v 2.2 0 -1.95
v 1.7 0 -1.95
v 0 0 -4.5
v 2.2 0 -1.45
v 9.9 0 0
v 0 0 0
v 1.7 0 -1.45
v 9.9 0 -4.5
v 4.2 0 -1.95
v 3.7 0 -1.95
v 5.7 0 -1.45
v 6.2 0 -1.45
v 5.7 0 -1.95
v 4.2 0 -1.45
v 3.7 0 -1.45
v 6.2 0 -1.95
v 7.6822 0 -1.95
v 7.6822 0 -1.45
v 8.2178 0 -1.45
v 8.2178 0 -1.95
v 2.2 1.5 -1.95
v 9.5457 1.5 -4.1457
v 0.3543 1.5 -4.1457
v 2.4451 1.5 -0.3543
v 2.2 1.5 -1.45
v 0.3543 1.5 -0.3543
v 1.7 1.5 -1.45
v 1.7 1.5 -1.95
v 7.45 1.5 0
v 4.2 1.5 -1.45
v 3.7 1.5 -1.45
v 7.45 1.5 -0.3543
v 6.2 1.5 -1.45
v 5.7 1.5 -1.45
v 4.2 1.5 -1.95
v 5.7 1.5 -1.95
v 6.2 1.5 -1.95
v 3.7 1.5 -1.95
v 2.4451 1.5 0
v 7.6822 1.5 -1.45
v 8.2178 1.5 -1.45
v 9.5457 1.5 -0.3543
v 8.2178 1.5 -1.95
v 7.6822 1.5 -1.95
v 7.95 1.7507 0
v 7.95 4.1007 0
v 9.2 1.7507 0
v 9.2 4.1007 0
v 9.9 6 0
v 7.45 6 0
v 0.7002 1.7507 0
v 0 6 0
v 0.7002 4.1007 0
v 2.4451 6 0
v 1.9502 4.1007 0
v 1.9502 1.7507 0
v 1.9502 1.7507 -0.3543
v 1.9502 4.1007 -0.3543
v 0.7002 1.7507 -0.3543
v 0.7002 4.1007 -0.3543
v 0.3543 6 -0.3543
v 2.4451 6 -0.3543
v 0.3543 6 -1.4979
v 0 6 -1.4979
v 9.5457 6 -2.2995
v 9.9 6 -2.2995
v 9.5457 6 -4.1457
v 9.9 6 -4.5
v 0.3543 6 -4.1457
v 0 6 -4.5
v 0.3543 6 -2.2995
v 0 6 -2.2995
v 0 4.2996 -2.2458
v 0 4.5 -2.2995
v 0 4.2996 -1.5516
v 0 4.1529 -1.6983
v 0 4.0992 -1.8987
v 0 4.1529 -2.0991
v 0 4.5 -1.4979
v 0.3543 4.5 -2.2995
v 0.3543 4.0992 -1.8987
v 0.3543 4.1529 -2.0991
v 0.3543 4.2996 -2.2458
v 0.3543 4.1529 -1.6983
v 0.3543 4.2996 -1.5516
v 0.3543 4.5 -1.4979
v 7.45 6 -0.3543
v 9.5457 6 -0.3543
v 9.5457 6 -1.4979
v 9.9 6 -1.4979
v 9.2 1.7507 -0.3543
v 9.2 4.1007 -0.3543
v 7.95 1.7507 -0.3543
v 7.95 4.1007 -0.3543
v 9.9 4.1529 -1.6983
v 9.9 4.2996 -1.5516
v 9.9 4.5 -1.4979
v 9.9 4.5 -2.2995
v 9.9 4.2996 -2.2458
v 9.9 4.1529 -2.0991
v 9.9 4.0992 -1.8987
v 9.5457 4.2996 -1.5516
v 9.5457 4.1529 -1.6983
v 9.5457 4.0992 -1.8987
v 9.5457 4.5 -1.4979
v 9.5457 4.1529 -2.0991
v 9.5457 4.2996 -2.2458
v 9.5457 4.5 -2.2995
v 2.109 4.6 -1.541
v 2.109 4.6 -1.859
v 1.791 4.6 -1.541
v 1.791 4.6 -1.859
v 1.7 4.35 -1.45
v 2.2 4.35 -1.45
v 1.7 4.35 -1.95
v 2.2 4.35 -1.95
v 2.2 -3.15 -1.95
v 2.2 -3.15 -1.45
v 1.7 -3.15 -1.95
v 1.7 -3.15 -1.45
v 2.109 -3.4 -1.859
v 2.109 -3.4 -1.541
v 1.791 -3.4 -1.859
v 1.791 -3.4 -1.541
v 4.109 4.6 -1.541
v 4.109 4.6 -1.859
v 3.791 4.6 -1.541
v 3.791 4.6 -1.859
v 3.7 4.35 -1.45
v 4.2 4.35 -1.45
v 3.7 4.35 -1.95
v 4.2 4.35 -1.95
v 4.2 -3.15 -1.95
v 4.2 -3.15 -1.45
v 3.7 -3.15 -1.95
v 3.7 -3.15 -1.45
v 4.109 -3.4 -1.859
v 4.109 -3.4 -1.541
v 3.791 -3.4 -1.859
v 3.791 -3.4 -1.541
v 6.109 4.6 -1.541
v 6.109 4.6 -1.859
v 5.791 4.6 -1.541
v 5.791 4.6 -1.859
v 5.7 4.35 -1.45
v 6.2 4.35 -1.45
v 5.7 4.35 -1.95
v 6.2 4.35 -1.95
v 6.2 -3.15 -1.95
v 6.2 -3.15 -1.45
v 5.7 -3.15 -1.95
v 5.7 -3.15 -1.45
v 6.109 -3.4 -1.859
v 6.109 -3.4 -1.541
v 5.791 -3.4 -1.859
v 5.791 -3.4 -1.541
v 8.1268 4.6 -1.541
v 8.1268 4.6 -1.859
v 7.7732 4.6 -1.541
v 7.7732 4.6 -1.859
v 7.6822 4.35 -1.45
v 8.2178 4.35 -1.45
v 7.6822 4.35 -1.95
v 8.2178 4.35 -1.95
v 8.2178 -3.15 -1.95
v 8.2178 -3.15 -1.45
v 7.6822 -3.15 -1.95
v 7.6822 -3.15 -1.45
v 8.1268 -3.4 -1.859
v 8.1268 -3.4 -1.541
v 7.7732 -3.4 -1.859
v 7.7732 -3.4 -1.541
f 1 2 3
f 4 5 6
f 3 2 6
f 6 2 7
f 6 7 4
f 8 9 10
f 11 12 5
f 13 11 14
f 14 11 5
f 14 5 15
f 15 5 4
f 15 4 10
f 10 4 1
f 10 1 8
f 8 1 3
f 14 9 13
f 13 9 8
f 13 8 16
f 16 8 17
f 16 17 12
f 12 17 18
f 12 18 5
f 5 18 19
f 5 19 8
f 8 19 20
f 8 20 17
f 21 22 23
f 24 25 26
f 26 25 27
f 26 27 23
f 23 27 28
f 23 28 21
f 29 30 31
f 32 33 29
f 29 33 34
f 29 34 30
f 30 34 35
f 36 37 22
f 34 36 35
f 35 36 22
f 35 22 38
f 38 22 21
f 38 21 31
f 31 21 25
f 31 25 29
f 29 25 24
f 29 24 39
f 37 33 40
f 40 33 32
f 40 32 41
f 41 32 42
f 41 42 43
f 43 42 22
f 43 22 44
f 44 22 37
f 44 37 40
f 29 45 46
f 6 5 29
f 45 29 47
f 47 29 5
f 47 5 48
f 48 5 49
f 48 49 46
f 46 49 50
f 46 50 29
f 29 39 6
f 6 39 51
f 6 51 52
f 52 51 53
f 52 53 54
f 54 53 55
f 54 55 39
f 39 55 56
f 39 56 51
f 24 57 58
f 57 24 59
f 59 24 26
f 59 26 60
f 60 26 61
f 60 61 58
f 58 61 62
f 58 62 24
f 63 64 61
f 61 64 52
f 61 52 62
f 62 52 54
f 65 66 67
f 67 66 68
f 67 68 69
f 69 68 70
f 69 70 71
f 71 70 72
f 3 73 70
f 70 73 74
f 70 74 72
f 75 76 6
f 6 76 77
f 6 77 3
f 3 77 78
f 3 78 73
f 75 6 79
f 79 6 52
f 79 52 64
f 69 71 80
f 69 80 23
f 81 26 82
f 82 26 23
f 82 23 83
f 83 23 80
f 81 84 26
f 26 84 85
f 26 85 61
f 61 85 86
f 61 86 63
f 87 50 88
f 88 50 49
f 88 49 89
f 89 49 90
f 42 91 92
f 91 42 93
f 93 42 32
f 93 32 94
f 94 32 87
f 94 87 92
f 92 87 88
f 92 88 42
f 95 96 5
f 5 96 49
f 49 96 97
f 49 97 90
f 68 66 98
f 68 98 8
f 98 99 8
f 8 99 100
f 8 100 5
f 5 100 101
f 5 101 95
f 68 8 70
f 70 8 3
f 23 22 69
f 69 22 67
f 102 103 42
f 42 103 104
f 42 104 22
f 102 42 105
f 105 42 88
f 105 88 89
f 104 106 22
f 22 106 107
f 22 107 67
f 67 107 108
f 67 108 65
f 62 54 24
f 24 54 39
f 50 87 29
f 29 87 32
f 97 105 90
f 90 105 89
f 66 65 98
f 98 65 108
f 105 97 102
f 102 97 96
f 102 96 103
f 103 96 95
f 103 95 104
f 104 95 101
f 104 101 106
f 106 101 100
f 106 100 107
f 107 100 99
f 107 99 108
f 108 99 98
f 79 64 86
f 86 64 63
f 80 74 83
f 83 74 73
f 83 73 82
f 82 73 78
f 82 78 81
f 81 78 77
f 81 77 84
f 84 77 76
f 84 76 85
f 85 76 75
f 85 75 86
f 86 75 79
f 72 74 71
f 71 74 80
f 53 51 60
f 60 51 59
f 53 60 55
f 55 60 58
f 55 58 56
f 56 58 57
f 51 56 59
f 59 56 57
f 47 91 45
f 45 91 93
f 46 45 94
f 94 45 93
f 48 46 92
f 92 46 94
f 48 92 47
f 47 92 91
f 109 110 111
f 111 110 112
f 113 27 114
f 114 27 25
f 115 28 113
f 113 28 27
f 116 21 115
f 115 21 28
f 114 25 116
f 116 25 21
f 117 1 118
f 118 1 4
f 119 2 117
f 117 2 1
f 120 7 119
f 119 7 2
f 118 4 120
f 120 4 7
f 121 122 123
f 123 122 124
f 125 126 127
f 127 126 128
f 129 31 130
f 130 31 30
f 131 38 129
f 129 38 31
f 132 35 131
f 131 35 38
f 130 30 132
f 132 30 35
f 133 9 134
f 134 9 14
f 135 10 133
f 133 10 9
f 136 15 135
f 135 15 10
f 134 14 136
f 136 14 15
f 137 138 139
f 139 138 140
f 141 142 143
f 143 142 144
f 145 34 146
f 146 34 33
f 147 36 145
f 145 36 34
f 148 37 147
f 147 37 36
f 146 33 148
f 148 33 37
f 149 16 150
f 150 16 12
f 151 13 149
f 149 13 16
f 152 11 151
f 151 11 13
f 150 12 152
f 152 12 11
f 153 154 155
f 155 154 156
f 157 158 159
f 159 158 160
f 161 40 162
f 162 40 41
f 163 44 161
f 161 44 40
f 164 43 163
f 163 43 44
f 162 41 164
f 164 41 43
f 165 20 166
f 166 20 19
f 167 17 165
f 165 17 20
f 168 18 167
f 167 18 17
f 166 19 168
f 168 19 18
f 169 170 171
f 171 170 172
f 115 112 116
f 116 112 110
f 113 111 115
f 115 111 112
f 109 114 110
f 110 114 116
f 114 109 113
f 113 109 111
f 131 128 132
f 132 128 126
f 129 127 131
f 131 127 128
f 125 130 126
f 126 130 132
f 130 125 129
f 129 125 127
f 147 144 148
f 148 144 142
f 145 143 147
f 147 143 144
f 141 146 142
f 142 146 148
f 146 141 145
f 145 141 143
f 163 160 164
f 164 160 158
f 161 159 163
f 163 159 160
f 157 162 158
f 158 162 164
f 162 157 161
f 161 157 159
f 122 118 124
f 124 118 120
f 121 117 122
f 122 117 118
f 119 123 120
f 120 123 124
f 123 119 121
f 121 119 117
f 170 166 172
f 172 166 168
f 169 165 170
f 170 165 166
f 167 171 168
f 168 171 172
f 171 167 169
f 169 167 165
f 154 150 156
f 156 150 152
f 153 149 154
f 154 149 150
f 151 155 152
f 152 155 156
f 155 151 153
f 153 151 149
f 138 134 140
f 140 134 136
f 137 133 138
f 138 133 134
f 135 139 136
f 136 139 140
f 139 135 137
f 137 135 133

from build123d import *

# Parameters (mm, degrees)
SKETCH1_W              = 9.9
SKETCH1_H              = 6
BOSS_EXTRUDE1_DEPTH    = 4.5
SKETCH2_W              = 9.191478786
SKETCH2_H              = 3.791478786
CUT_EXTRUDE1_DEPTH     = 4.5
SKETCH3_W              = 5.004949596
SKETCH3_H              = 0.354260607
CUT_EXTRUDE2_DEPTH     = 4.5
CUT_EXTRUDE3_DEPTH     = 0.5
SKETCH6_W              = 1.25
SKETCH6_H              = 2.35
CUT_EXTRUDE4_DEPTH     = 0.5
BOSS_EXTRUDE3_START    = -3.4
SKETCH10_W             = 0.5
SKETCH10_H             = 0.5
SKETCH10_W_2           = 0.535638506
BOSS_EXTRUDE3_DEPTH    = 8
CHAMFER1_SIZE          = 0.25
CHAMFER1_SIZE2         = 0.090992559
CHAMFER1_PART_2_SIZE   = 0.25
CHAMFER1_PART_2_SIZE2  = 0.090992559
CHAMFER1_PART_3_SIZE   = 0.25
CHAMFER1_PART_3_SIZE2  = 0.090992559
CHAMFER1_PART_4_SIZE   = 0.25
CHAMFER1_PART_4_SIZE2  = 0.090992559
CHAMFER2_SIZE          = 0.25
CHAMFER2_SIZE2         = 0.090992559
CHAMFER2_PART_2_SIZE   = 0.25
CHAMFER2_PART_2_SIZE2  = 0.090992559
CHAMFER2_PART_3_SIZE   = 0.25
CHAMFER2_PART_3_SIZE2  = 0.090992559
CHAMFER2_PART_4_SIZE   = 0.25
CHAMFER2_PART_4_SIZE2  = 0.090992559
CHAMFER2_PART_5_SIZE   = 0.25
CHAMFER2_PART_5_SIZE2  = 0.090992559
CHAMFER2_PART_6_SIZE   = 0.25
CHAMFER2_PART_6_SIZE2  = 0.090992559
CHAMFER2_PART_7_SIZE   = 0.25
CHAMFER2_PART_7_SIZE2  = 0.090992559
CHAMFER2_PART_8_SIZE   = 0.25
CHAMFER2_PART_8_SIZE2  = 0.090992559
CHAMFER2_PART_9_SIZE   = 0.25
CHAMFER2_PART_9_SIZE2  = 0.090992559
CHAMFER2_PART_10_SIZE  = 0.25
CHAMFER2_PART_10_SIZE2 = 0.090992559
CHAMFER2_PART_11_SIZE  = 0.25
CHAMFER2_PART_11_SIZE2 = 0.090992559
CHAMFER2_PART_12_SIZE  = 0.25
CHAMFER2_PART_12_SIZE2 = 0.090992559
CHAMFER3_SIZE          = 0.25
CHAMFER3_SIZE2         = 0.090992559
CHAMFER3_PART_2_SIZE   = 0.25
CHAMFER3_PART_2_SIZE2  = 0.090992559
CHAMFER3_PART_3_SIZE   = 0.25
CHAMFER3_PART_3_SIZE2  = 0.090992559
CHAMFER3_PART_4_SIZE   = 0.25
CHAMFER3_PART_4_SIZE2  = 0.090992559
CHAMFER3_PART_5_SIZE   = 0.25
CHAMFER3_PART_5_SIZE2  = 0.090992559
CHAMFER3_PART_6_SIZE   = 0.25
CHAMFER3_PART_6_SIZE2  = 0.090992559
CHAMFER3_PART_7_SIZE   = 0.25
CHAMFER3_PART_7_SIZE2  = 0.090992559
CHAMFER3_PART_8_SIZE   = 0.25
CHAMFER3_PART_8_SIZE2  = 0.090992559
CHAMFER3_PART_9_SIZE   = 0.25
CHAMFER3_PART_9_SIZE2  = 0.090992559
CHAMFER3_PART_10_SIZE  = 0.25
CHAMFER3_PART_10_SIZE2 = 0.090992559
CHAMFER3_PART_11_SIZE  = 0.25
CHAMFER3_PART_11_SIZE2 = 0.090992559
CHAMFER3_PART_12_SIZE  = 0.25
CHAMFER3_PART_12_SIZE2 = 0.090992559
CHAMFER3_PART_13_SIZE  = 0.25
CHAMFER3_PART_13_SIZE2 = 0.090992559
CHAMFER3_PART_14_SIZE  = 0.25
CHAMFER3_PART_14_SIZE2 = 0.090992559
CHAMFER3_PART_15_SIZE  = 0.25
CHAMFER3_PART_15_SIZE2 = 0.090992559
CHAMFER3_PART_16_SIZE  = 0.25
CHAMFER3_PART_16_SIZE2 = 0.090992559


with BuildPart() as part:
    # Sketch1 → Boss-Extrude1 (new body)
    with BuildSketch(Plane.XY):
        with Locations((4.95, 3)):
            Rectangle(SKETCH1_W, SKETCH1_H)
    extrude(amount=-BOSS_EXTRUDE1_DEPTH)

    # Sketch2 → Cut-Extrude1 (cut)
    with BuildSketch(Plane(origin=(0, 6, 0), x_dir=(1, 0, 0), z_dir=(0, 1, 0))):
        with Locations((4.95, 2.25)):
            Rectangle(SKETCH2_W, SKETCH2_H)
    extrude(amount=-CUT_EXTRUDE1_DEPTH, mode=Mode.SUBTRACT)

    # Sketch3 → Cut-Extrude2 (cut)
    with BuildSketch(Plane(origin=(0, 1.5, 0), x_dir=(1, 0, 0), z_dir=(0, 1, 0))):
        with Locations((4.947525202, 0.177130304)):
            Rectangle(SKETCH3_W, SKETCH3_H)
    extrude(amount=CUT_EXTRUDE2_DEPTH, mode=Mode.SUBTRACT)

    # Sketch5 → Cut-Extrude3 (cut)
    with BuildSketch(Plane(origin=(9.9, 0, 0), x_dir=(0, 0, -1), z_dir=(1, 0, 0))):
        with BuildLine():
            Line((2.299478677, 6), (1.497924103, 6))
            Line((1.497924103, 6), (1.497924103, 4.5))
            ThreePointArc((1.497924103, 4.5), (1.89870139, 4.900777287), (2.299478677, 4.5))
            Line((2.299478677, 4.5), (2.299478677, 6))
        make_face()
        with BuildLine():
            ThreePointArc((2.299478677, 4.5), (1.89870139, 4.900777287), (1.497924103, 4.5))
            Line((1.497924103, 4.5), (2.299478677, 4.5))
        make_face()
        with BuildLine():
            Line((2.299478677, 4.5), (1.497924103, 4.5))
            ThreePointArc((1.497924103, 4.5), (1.89870139, 4.099222713), (2.299478677, 4.5))
        make_face()
    cut_extrude3 = extrude(amount=-CUT_EXTRUDE3_DEPTH, mode=Mode.SUBTRACT)

    # Mirror1: Cut-Extrude3 across plane
    add(cut_extrude3.mirror(Plane(origin=(4.95, 0, 0), x_dir=(0, 0, 1), z_dir=(1, 0, 0))), mode=Mode.SUBTRACT)

    # Sketch6 → Cut-Extrude4 (cut)
    with BuildSketch(Plane.XY):
        with Locations((1.325196701, 2.925654718)):
            Rectangle(SKETCH6_W, SKETCH6_H)
        with Locations((8.575, 2.925654718)):
            Rectangle(SKETCH6_W, SKETCH6_H)
    extrude(amount=-CUT_EXTRUDE4_DEPTH, mode=Mode.SUBTRACT)

    # Sketch10 → Boss-Extrude3 (add)
    with BuildSketch(Plane(origin=(0, 0, 0), x_dir=(1, 0, 0), z_dir=(0, 1, 0)).offset(BOSS_EXTRUDE3_START)):
        with Locations((1.95, 1.7)):
            Rectangle(SKETCH10_W, SKETCH10_H)
        with Locations((3.95, 1.7)):
            Rectangle(SKETCH10_W, SKETCH10_H)
        with Locations((5.95, 1.7)):
            Rectangle(SKETCH10_W, SKETCH10_H)
        with Locations((7.95, 1.7)):
            Rectangle(SKETCH10_W_2, SKETCH10_H)
    extrude(amount=BOSS_EXTRUDE3_DEPTH)

    # Chamfer1
    chamfer1_edges = [part.edges().sort_by_distance(p)[0] for p in [
        (2.2, 4.6, -1.7),
    ]]
    chamfer1_side = [part.faces().sort_by_distance(p)[0] for p in [
        (2.2, 3.05, -1.7),
    ]]
    chamfer(chamfer1_edges, length=CHAMFER1_SIZE, length2=CHAMFER1_SIZE2, reference=chamfer1_side[0])

    # Chamfer1 part 2
    chamfer1_part_2_edges = [part.edges().sort_by_distance(p)[0] for p in [
        (1.95, 4.6, -1.95),
    ]]
    chamfer1_part_2_side = [part.faces().sort_by_distance(p)[0] for p in [
        (1.95, 3.05, -1.95),
    ]]
    chamfer(chamfer1_part_2_edges, length=CHAMFER1_PART_2_SIZE, length2=CHAMFER1_PART_2_SIZE2, reference=chamfer1_part_2_side[0])

    # Chamfer1 part 3
    chamfer1_part_3_edges = [part.edges().sort_by_distance(p)[0] for p in [
        (1.7, 4.6, -1.7),
    ]]
    chamfer1_part_3_side = [part.faces().sort_by_distance(p)[0] for p in [
        (1.7, 3.05, -1.7),
    ]]
    chamfer(chamfer1_part_3_edges, length=CHAMFER1_PART_3_SIZE, length2=CHAMFER1_PART_3_SIZE2, reference=chamfer1_part_3_side[0])

    # Chamfer1 part 4
    chamfer1_part_4_edges = [part.edges().sort_by_distance(p)[0] for p in [
        (1.95, 4.6, -1.45),
    ]]
    chamfer1_part_4_side = [part.faces().sort_by_distance(p)[0] for p in [
        (1.95, 3.05, -1.45),
    ]]
    chamfer(chamfer1_part_4_edges, length=CHAMFER1_PART_4_SIZE, length2=CHAMFER1_PART_4_SIZE2, reference=chamfer1_part_4_side[0])

    # Chamfer2
    chamfer2_edges = [part.edges().sort_by_distance(p)[0] for p in [
        (4.2, 4.6, -1.7),
    ]]
    chamfer2_side = [part.faces().sort_by_distance(p)[0] for p in [
        (4.2, 3.05, -1.7),
    ]]
    chamfer(chamfer2_edges, length=CHAMFER2_SIZE, length2=CHAMFER2_SIZE2, reference=chamfer2_side[0])

    # Chamfer2 part 2
    chamfer2_part_2_edges = [part.edges().sort_by_distance(p)[0] for p in [
        (3.95, 4.6, -1.95),
    ]]
    chamfer2_part_2_side = [part.faces().sort_by_distance(p)[0] for p in [
        (3.95, 3.05, -1.95),
    ]]
    chamfer(chamfer2_part_2_edges, length=CHAMFER2_PART_2_SIZE, length2=CHAMFER2_PART_2_SIZE2, reference=chamfer2_part_2_side[0])

    # Chamfer2 part 3
    chamfer2_part_3_edges = [part.edges().sort_by_distance(p)[0] for p in [
        (3.7, 4.6, -1.7),
    ]]
    chamfer2_part_3_side = [part.faces().sort_by_distance(p)[0] for p in [
        (3.7, 3.05, -1.7),
    ]]
    chamfer(chamfer2_part_3_edges, length=CHAMFER2_PART_3_SIZE, length2=CHAMFER2_PART_3_SIZE2, reference=chamfer2_part_3_side[0])

    # Chamfer2 part 4
    chamfer2_part_4_edges = [part.edges().sort_by_distance(p)[0] for p in [
        (3.95, 4.6, -1.45),
    ]]
    chamfer2_part_4_side = [part.faces().sort_by_distance(p)[0] for p in [
        (3.95, 3.05, -1.45),
    ]]
    chamfer(chamfer2_part_4_edges, length=CHAMFER2_PART_4_SIZE, length2=CHAMFER2_PART_4_SIZE2, reference=chamfer2_part_4_side[0])

    # Chamfer2 part 5
    chamfer2_part_5_edges = [part.edges().sort_by_distance(p)[0] for p in [
        (6.2, 4.6, -1.7),
    ]]
    chamfer2_part_5_side = [part.faces().sort_by_distance(p)[0] for p in [
        (6.2, 3.05, -1.7),
    ]]
    chamfer(chamfer2_part_5_edges, length=CHAMFER2_PART_5_SIZE, length2=CHAMFER2_PART_5_SIZE2, reference=chamfer2_part_5_side[0])

    # Chamfer2 part 6
    chamfer2_part_6_edges = [part.edges().sort_by_distance(p)[0] for p in [
        (5.95, 4.6, -1.95),
    ]]
    chamfer2_part_6_side = [part.faces().sort_by_distance(p)[0] for p in [
        (5.95, 3.05, -1.95),
    ]]
    chamfer(chamfer2_part_6_edges, length=CHAMFER2_PART_6_SIZE, length2=CHAMFER2_PART_6_SIZE2, reference=chamfer2_part_6_side[0])

    # Chamfer2 part 7
    chamfer2_part_7_edges = [part.edges().sort_by_distance(p)[0] for p in [
        (5.7, 4.6, -1.7),
    ]]
    chamfer2_part_7_side = [part.faces().sort_by_distance(p)[0] for p in [
        (5.7, 3.05, -1.7),
    ]]
    chamfer(chamfer2_part_7_edges, length=CHAMFER2_PART_7_SIZE, length2=CHAMFER2_PART_7_SIZE2, reference=chamfer2_part_7_side[0])

    # Chamfer2 part 8
    chamfer2_part_8_edges = [part.edges().sort_by_distance(p)[0] for p in [
        (5.95, 4.6, -1.45),
    ]]
    chamfer2_part_8_side = [part.faces().sort_by_distance(p)[0] for p in [
        (5.95, 3.05, -1.45),
    ]]
    chamfer(chamfer2_part_8_edges, length=CHAMFER2_PART_8_SIZE, length2=CHAMFER2_PART_8_SIZE2, reference=chamfer2_part_8_side[0])

    # Chamfer2 part 9
    chamfer2_part_9_edges = [part.edges().sort_by_distance(p)[0] for p in [
        (8.217819253, 4.6, -1.7),
    ]]
    chamfer2_part_9_side = [part.faces().sort_by_distance(p)[0] for p in [
        (8.217819253, 3.05, -1.7),
    ]]
    chamfer(chamfer2_part_9_edges, length=CHAMFER2_PART_9_SIZE, length2=CHAMFER2_PART_9_SIZE2, reference=chamfer2_part_9_side[0])

    # Chamfer2 part 10
    chamfer2_part_10_edges = [part.edges().sort_by_distance(p)[0] for p in [
        (7.95, 4.6, -1.95),
    ]]
    chamfer2_part_10_side = [part.faces().sort_by_distance(p)[0] for p in [
        (7.95, 3.05, -1.95),
    ]]
    chamfer(chamfer2_part_10_edges, length=CHAMFER2_PART_10_SIZE, length2=CHAMFER2_PART_10_SIZE2, reference=chamfer2_part_10_side[0])

    # Chamfer2 part 11
    chamfer2_part_11_edges = [part.edges().sort_by_distance(p)[0] for p in [
        (7.682180747, 4.6, -1.7),
    ]]
    chamfer2_part_11_side = [part.faces().sort_by_distance(p)[0] for p in [
        (7.682180747, 3.05, -1.7),
    ]]
    chamfer(chamfer2_part_11_edges, length=CHAMFER2_PART_11_SIZE, length2=CHAMFER2_PART_11_SIZE2, reference=chamfer2_part_11_side[0])

    # Chamfer2 part 12
    chamfer2_part_12_edges = [part.edges().sort_by_distance(p)[0] for p in [
        (7.95, 4.6, -1.45),
    ]]
    chamfer2_part_12_side = [part.faces().sort_by_distance(p)[0] for p in [
        (7.95, 3.05, -1.45),
    ]]
    chamfer(chamfer2_part_12_edges, length=CHAMFER2_PART_12_SIZE, length2=CHAMFER2_PART_12_SIZE2, reference=chamfer2_part_12_side[0])

    # Chamfer3
    chamfer3_edges = [part.edges().sort_by_distance(p)[0] for p in [
        (2.2, -3.4, -1.7),
    ]]
    chamfer3_side = [part.faces().sort_by_distance(p)[0] for p in [
        (2.2, -1.7, -1.7),
    ]]
    chamfer(chamfer3_edges, length=CHAMFER3_SIZE, length2=CHAMFER3_SIZE2, reference=chamfer3_side[0])

    # Chamfer3 part 2
    chamfer3_part_2_edges = [part.edges().sort_by_distance(p)[0] for p in [
        (1.95, -3.4, -1.95),
    ]]
    chamfer3_part_2_side = [part.faces().sort_by_distance(p)[0] for p in [
        (1.95, -1.7, -1.95),
    ]]
    chamfer(chamfer3_part_2_edges, length=CHAMFER3_PART_2_SIZE, length2=CHAMFER3_PART_2_SIZE2, reference=chamfer3_part_2_side[0])

    # Chamfer3 part 3
    chamfer3_part_3_edges = [part.edges().sort_by_distance(p)[0] for p in [
        (1.7, -3.4, -1.7),
    ]]
    chamfer3_part_3_side = [part.faces().sort_by_distance(p)[0] for p in [
        (1.7, -1.7, -1.7),
    ]]
    chamfer(chamfer3_part_3_edges, length=CHAMFER3_PART_3_SIZE, length2=CHAMFER3_PART_3_SIZE2, reference=chamfer3_part_3_side[0])

    # Chamfer3 part 4
    chamfer3_part_4_edges = [part.edges().sort_by_distance(p)[0] for p in [
        (1.95, -3.4, -1.45),
    ]]
    chamfer3_part_4_side = [part.faces().sort_by_distance(p)[0] for p in [
        (1.95, -1.7, -1.45),
    ]]
    chamfer(chamfer3_part_4_edges, length=CHAMFER3_PART_4_SIZE, length2=CHAMFER3_PART_4_SIZE2, reference=chamfer3_part_4_side[0])

    # Chamfer3 part 5
    chamfer3_part_5_edges = [part.edges().sort_by_distance(p)[0] for p in [
        (4.2, -3.4, -1.7),
    ]]
    chamfer3_part_5_side = [part.faces().sort_by_distance(p)[0] for p in [
        (4.2, -1.7, -1.7),
    ]]
    chamfer(chamfer3_part_5_edges, length=CHAMFER3_PART_5_SIZE, length2=CHAMFER3_PART_5_SIZE2, reference=chamfer3_part_5_side[0])

    # Chamfer3 part 6
    chamfer3_part_6_edges = [part.edges().sort_by_distance(p)[0] for p in [
        (3.95, -3.4, -1.95),
    ]]
    chamfer3_part_6_side = [part.faces().sort_by_distance(p)[0] for p in [
        (3.95, -1.7, -1.95),
    ]]
    chamfer(chamfer3_part_6_edges, length=CHAMFER3_PART_6_SIZE, length2=CHAMFER3_PART_6_SIZE2, reference=chamfer3_part_6_side[0])

    # Chamfer3 part 7
    chamfer3_part_7_edges = [part.edges().sort_by_distance(p)[0] for p in [
        (3.7, -3.4, -1.7),
    ]]
    chamfer3_part_7_side = [part.faces().sort_by_distance(p)[0] for p in [
        (3.7, -1.7, -1.7),
    ]]
    chamfer(chamfer3_part_7_edges, length=CHAMFER3_PART_7_SIZE, length2=CHAMFER3_PART_7_SIZE2, reference=chamfer3_part_7_side[0])

    # Chamfer3 part 8
    chamfer3_part_8_edges = [part.edges().sort_by_distance(p)[0] for p in [
        (3.95, -3.4, -1.45),
    ]]
    chamfer3_part_8_side = [part.faces().sort_by_distance(p)[0] for p in [
        (3.95, -1.7, -1.45),
    ]]
    chamfer(chamfer3_part_8_edges, length=CHAMFER3_PART_8_SIZE, length2=CHAMFER3_PART_8_SIZE2, reference=chamfer3_part_8_side[0])

    # Chamfer3 part 9
    chamfer3_part_9_edges = [part.edges().sort_by_distance(p)[0] for p in [
        (6.2, -3.4, -1.7),
    ]]
    chamfer3_part_9_side = [part.faces().sort_by_distance(p)[0] for p in [
        (6.2, -1.7, -1.7),
    ]]
    chamfer(chamfer3_part_9_edges, length=CHAMFER3_PART_9_SIZE, length2=CHAMFER3_PART_9_SIZE2, reference=chamfer3_part_9_side[0])

    # Chamfer3 part 10
    chamfer3_part_10_edges = [part.edges().sort_by_distance(p)[0] for p in [
        (5.95, -3.4, -1.95),
    ]]
    chamfer3_part_10_side = [part.faces().sort_by_distance(p)[0] for p in [
        (5.95, -1.7, -1.95),
    ]]
    chamfer(chamfer3_part_10_edges, length=CHAMFER3_PART_10_SIZE, length2=CHAMFER3_PART_10_SIZE2, reference=chamfer3_part_10_side[0])

    # Chamfer3 part 11
    chamfer3_part_11_edges = [part.edges().sort_by_distance(p)[0] for p in [
        (5.7, -3.4, -1.7),
    ]]
    chamfer3_part_11_side = [part.faces().sort_by_distance(p)[0] for p in [
        (5.7, -1.7, -1.7),
    ]]
    chamfer(chamfer3_part_11_edges, length=CHAMFER3_PART_11_SIZE, length2=CHAMFER3_PART_11_SIZE2, reference=chamfer3_part_11_side[0])

    # Chamfer3 part 12
    chamfer3_part_12_edges = [part.edges().sort_by_distance(p)[0] for p in [
        (5.95, -3.4, -1.45),
    ]]
    chamfer3_part_12_side = [part.faces().sort_by_distance(p)[0] for p in [
        (5.95, -1.7, -1.45),
    ]]
    chamfer(chamfer3_part_12_edges, length=CHAMFER3_PART_12_SIZE, length2=CHAMFER3_PART_12_SIZE2, reference=chamfer3_part_12_side[0])

    # Chamfer3 part 13
    chamfer3_part_13_edges = [part.edges().sort_by_distance(p)[0] for p in [
        (8.217819253, -3.4, -1.7),
    ]]
    chamfer3_part_13_side = [part.faces().sort_by_distance(p)[0] for p in [
        (8.217819253, -1.7, -1.7),
    ]]
    chamfer(chamfer3_part_13_edges, length=CHAMFER3_PART_13_SIZE, length2=CHAMFER3_PART_13_SIZE2, reference=chamfer3_part_13_side[0])

    # Chamfer3 part 14
    chamfer3_part_14_edges = [part.edges().sort_by_distance(p)[0] for p in [
        (7.95, -3.4, -1.95),
    ]]
    chamfer3_part_14_side = [part.faces().sort_by_distance(p)[0] for p in [
        (7.95, -1.7, -1.95),
    ]]
    chamfer(chamfer3_part_14_edges, length=CHAMFER3_PART_14_SIZE, length2=CHAMFER3_PART_14_SIZE2, reference=chamfer3_part_14_side[0])

    # Chamfer3 part 15
    chamfer3_part_15_edges = [part.edges().sort_by_distance(p)[0] for p in [
        (7.682180747, -3.4, -1.7),
    ]]
    chamfer3_part_15_side = [part.faces().sort_by_distance(p)[0] for p in [
        (7.682180747, -1.7, -1.7),
    ]]
    chamfer(chamfer3_part_15_edges, length=CHAMFER3_PART_15_SIZE, length2=CHAMFER3_PART_15_SIZE2, reference=chamfer3_part_15_side[0])

    # Chamfer3 part 16
    chamfer3_part_16_edges = [part.edges().sort_by_distance(p)[0] for p in [
        (7.95, -3.4, -1.45),
    ]]
    chamfer3_part_16_side = [part.faces().sort_by_distance(p)[0] for p in [
        (7.95, -1.7, -1.45),
    ]]
    chamfer(chamfer3_part_16_edges, length=CHAMFER3_PART_16_SIZE, length2=CHAMFER3_PART_16_SIZE2, reference=chamfer3_part_16_side[0])


solid = part.part
